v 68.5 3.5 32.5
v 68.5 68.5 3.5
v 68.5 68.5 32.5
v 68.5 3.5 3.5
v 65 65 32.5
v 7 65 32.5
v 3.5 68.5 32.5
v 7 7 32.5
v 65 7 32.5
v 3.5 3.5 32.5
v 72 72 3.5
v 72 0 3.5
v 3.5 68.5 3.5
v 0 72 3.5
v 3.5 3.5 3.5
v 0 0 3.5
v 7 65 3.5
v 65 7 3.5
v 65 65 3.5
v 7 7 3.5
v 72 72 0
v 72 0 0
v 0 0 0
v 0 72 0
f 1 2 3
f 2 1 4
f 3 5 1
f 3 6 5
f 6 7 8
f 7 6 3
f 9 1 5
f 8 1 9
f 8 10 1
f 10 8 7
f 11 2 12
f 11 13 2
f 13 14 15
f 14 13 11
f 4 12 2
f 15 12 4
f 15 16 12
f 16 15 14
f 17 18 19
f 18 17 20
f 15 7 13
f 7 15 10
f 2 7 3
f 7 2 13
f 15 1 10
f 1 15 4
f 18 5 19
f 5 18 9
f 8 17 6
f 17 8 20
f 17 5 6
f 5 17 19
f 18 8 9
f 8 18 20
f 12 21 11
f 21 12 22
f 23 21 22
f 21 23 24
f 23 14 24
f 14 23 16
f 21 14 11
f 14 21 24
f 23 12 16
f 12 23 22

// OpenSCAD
pole_width = 65;
pole_depth = 65;
cap_neck_height = 29;
cap_overlap = 3.5;

cube([pole_width + cap_overlap + cap_overlap,
      pole_depth + cap_overlap + cap_overlap,
      cap_overlap]);

translate([cap_overlap, cap_overlap, cap_overlap])
{
    difference()
    {
        cube([pole_width, pole_depth, cap_neck_height]);
        translate([cap_overlap,
                   cap_overlap,
                   0])
        {
            cube([pole_width - cap_overlap - cap_overlap,
                  pole_depth - cap_overlap - cap_overlap,
                  cap_neck_height]);
        }
    }
}
